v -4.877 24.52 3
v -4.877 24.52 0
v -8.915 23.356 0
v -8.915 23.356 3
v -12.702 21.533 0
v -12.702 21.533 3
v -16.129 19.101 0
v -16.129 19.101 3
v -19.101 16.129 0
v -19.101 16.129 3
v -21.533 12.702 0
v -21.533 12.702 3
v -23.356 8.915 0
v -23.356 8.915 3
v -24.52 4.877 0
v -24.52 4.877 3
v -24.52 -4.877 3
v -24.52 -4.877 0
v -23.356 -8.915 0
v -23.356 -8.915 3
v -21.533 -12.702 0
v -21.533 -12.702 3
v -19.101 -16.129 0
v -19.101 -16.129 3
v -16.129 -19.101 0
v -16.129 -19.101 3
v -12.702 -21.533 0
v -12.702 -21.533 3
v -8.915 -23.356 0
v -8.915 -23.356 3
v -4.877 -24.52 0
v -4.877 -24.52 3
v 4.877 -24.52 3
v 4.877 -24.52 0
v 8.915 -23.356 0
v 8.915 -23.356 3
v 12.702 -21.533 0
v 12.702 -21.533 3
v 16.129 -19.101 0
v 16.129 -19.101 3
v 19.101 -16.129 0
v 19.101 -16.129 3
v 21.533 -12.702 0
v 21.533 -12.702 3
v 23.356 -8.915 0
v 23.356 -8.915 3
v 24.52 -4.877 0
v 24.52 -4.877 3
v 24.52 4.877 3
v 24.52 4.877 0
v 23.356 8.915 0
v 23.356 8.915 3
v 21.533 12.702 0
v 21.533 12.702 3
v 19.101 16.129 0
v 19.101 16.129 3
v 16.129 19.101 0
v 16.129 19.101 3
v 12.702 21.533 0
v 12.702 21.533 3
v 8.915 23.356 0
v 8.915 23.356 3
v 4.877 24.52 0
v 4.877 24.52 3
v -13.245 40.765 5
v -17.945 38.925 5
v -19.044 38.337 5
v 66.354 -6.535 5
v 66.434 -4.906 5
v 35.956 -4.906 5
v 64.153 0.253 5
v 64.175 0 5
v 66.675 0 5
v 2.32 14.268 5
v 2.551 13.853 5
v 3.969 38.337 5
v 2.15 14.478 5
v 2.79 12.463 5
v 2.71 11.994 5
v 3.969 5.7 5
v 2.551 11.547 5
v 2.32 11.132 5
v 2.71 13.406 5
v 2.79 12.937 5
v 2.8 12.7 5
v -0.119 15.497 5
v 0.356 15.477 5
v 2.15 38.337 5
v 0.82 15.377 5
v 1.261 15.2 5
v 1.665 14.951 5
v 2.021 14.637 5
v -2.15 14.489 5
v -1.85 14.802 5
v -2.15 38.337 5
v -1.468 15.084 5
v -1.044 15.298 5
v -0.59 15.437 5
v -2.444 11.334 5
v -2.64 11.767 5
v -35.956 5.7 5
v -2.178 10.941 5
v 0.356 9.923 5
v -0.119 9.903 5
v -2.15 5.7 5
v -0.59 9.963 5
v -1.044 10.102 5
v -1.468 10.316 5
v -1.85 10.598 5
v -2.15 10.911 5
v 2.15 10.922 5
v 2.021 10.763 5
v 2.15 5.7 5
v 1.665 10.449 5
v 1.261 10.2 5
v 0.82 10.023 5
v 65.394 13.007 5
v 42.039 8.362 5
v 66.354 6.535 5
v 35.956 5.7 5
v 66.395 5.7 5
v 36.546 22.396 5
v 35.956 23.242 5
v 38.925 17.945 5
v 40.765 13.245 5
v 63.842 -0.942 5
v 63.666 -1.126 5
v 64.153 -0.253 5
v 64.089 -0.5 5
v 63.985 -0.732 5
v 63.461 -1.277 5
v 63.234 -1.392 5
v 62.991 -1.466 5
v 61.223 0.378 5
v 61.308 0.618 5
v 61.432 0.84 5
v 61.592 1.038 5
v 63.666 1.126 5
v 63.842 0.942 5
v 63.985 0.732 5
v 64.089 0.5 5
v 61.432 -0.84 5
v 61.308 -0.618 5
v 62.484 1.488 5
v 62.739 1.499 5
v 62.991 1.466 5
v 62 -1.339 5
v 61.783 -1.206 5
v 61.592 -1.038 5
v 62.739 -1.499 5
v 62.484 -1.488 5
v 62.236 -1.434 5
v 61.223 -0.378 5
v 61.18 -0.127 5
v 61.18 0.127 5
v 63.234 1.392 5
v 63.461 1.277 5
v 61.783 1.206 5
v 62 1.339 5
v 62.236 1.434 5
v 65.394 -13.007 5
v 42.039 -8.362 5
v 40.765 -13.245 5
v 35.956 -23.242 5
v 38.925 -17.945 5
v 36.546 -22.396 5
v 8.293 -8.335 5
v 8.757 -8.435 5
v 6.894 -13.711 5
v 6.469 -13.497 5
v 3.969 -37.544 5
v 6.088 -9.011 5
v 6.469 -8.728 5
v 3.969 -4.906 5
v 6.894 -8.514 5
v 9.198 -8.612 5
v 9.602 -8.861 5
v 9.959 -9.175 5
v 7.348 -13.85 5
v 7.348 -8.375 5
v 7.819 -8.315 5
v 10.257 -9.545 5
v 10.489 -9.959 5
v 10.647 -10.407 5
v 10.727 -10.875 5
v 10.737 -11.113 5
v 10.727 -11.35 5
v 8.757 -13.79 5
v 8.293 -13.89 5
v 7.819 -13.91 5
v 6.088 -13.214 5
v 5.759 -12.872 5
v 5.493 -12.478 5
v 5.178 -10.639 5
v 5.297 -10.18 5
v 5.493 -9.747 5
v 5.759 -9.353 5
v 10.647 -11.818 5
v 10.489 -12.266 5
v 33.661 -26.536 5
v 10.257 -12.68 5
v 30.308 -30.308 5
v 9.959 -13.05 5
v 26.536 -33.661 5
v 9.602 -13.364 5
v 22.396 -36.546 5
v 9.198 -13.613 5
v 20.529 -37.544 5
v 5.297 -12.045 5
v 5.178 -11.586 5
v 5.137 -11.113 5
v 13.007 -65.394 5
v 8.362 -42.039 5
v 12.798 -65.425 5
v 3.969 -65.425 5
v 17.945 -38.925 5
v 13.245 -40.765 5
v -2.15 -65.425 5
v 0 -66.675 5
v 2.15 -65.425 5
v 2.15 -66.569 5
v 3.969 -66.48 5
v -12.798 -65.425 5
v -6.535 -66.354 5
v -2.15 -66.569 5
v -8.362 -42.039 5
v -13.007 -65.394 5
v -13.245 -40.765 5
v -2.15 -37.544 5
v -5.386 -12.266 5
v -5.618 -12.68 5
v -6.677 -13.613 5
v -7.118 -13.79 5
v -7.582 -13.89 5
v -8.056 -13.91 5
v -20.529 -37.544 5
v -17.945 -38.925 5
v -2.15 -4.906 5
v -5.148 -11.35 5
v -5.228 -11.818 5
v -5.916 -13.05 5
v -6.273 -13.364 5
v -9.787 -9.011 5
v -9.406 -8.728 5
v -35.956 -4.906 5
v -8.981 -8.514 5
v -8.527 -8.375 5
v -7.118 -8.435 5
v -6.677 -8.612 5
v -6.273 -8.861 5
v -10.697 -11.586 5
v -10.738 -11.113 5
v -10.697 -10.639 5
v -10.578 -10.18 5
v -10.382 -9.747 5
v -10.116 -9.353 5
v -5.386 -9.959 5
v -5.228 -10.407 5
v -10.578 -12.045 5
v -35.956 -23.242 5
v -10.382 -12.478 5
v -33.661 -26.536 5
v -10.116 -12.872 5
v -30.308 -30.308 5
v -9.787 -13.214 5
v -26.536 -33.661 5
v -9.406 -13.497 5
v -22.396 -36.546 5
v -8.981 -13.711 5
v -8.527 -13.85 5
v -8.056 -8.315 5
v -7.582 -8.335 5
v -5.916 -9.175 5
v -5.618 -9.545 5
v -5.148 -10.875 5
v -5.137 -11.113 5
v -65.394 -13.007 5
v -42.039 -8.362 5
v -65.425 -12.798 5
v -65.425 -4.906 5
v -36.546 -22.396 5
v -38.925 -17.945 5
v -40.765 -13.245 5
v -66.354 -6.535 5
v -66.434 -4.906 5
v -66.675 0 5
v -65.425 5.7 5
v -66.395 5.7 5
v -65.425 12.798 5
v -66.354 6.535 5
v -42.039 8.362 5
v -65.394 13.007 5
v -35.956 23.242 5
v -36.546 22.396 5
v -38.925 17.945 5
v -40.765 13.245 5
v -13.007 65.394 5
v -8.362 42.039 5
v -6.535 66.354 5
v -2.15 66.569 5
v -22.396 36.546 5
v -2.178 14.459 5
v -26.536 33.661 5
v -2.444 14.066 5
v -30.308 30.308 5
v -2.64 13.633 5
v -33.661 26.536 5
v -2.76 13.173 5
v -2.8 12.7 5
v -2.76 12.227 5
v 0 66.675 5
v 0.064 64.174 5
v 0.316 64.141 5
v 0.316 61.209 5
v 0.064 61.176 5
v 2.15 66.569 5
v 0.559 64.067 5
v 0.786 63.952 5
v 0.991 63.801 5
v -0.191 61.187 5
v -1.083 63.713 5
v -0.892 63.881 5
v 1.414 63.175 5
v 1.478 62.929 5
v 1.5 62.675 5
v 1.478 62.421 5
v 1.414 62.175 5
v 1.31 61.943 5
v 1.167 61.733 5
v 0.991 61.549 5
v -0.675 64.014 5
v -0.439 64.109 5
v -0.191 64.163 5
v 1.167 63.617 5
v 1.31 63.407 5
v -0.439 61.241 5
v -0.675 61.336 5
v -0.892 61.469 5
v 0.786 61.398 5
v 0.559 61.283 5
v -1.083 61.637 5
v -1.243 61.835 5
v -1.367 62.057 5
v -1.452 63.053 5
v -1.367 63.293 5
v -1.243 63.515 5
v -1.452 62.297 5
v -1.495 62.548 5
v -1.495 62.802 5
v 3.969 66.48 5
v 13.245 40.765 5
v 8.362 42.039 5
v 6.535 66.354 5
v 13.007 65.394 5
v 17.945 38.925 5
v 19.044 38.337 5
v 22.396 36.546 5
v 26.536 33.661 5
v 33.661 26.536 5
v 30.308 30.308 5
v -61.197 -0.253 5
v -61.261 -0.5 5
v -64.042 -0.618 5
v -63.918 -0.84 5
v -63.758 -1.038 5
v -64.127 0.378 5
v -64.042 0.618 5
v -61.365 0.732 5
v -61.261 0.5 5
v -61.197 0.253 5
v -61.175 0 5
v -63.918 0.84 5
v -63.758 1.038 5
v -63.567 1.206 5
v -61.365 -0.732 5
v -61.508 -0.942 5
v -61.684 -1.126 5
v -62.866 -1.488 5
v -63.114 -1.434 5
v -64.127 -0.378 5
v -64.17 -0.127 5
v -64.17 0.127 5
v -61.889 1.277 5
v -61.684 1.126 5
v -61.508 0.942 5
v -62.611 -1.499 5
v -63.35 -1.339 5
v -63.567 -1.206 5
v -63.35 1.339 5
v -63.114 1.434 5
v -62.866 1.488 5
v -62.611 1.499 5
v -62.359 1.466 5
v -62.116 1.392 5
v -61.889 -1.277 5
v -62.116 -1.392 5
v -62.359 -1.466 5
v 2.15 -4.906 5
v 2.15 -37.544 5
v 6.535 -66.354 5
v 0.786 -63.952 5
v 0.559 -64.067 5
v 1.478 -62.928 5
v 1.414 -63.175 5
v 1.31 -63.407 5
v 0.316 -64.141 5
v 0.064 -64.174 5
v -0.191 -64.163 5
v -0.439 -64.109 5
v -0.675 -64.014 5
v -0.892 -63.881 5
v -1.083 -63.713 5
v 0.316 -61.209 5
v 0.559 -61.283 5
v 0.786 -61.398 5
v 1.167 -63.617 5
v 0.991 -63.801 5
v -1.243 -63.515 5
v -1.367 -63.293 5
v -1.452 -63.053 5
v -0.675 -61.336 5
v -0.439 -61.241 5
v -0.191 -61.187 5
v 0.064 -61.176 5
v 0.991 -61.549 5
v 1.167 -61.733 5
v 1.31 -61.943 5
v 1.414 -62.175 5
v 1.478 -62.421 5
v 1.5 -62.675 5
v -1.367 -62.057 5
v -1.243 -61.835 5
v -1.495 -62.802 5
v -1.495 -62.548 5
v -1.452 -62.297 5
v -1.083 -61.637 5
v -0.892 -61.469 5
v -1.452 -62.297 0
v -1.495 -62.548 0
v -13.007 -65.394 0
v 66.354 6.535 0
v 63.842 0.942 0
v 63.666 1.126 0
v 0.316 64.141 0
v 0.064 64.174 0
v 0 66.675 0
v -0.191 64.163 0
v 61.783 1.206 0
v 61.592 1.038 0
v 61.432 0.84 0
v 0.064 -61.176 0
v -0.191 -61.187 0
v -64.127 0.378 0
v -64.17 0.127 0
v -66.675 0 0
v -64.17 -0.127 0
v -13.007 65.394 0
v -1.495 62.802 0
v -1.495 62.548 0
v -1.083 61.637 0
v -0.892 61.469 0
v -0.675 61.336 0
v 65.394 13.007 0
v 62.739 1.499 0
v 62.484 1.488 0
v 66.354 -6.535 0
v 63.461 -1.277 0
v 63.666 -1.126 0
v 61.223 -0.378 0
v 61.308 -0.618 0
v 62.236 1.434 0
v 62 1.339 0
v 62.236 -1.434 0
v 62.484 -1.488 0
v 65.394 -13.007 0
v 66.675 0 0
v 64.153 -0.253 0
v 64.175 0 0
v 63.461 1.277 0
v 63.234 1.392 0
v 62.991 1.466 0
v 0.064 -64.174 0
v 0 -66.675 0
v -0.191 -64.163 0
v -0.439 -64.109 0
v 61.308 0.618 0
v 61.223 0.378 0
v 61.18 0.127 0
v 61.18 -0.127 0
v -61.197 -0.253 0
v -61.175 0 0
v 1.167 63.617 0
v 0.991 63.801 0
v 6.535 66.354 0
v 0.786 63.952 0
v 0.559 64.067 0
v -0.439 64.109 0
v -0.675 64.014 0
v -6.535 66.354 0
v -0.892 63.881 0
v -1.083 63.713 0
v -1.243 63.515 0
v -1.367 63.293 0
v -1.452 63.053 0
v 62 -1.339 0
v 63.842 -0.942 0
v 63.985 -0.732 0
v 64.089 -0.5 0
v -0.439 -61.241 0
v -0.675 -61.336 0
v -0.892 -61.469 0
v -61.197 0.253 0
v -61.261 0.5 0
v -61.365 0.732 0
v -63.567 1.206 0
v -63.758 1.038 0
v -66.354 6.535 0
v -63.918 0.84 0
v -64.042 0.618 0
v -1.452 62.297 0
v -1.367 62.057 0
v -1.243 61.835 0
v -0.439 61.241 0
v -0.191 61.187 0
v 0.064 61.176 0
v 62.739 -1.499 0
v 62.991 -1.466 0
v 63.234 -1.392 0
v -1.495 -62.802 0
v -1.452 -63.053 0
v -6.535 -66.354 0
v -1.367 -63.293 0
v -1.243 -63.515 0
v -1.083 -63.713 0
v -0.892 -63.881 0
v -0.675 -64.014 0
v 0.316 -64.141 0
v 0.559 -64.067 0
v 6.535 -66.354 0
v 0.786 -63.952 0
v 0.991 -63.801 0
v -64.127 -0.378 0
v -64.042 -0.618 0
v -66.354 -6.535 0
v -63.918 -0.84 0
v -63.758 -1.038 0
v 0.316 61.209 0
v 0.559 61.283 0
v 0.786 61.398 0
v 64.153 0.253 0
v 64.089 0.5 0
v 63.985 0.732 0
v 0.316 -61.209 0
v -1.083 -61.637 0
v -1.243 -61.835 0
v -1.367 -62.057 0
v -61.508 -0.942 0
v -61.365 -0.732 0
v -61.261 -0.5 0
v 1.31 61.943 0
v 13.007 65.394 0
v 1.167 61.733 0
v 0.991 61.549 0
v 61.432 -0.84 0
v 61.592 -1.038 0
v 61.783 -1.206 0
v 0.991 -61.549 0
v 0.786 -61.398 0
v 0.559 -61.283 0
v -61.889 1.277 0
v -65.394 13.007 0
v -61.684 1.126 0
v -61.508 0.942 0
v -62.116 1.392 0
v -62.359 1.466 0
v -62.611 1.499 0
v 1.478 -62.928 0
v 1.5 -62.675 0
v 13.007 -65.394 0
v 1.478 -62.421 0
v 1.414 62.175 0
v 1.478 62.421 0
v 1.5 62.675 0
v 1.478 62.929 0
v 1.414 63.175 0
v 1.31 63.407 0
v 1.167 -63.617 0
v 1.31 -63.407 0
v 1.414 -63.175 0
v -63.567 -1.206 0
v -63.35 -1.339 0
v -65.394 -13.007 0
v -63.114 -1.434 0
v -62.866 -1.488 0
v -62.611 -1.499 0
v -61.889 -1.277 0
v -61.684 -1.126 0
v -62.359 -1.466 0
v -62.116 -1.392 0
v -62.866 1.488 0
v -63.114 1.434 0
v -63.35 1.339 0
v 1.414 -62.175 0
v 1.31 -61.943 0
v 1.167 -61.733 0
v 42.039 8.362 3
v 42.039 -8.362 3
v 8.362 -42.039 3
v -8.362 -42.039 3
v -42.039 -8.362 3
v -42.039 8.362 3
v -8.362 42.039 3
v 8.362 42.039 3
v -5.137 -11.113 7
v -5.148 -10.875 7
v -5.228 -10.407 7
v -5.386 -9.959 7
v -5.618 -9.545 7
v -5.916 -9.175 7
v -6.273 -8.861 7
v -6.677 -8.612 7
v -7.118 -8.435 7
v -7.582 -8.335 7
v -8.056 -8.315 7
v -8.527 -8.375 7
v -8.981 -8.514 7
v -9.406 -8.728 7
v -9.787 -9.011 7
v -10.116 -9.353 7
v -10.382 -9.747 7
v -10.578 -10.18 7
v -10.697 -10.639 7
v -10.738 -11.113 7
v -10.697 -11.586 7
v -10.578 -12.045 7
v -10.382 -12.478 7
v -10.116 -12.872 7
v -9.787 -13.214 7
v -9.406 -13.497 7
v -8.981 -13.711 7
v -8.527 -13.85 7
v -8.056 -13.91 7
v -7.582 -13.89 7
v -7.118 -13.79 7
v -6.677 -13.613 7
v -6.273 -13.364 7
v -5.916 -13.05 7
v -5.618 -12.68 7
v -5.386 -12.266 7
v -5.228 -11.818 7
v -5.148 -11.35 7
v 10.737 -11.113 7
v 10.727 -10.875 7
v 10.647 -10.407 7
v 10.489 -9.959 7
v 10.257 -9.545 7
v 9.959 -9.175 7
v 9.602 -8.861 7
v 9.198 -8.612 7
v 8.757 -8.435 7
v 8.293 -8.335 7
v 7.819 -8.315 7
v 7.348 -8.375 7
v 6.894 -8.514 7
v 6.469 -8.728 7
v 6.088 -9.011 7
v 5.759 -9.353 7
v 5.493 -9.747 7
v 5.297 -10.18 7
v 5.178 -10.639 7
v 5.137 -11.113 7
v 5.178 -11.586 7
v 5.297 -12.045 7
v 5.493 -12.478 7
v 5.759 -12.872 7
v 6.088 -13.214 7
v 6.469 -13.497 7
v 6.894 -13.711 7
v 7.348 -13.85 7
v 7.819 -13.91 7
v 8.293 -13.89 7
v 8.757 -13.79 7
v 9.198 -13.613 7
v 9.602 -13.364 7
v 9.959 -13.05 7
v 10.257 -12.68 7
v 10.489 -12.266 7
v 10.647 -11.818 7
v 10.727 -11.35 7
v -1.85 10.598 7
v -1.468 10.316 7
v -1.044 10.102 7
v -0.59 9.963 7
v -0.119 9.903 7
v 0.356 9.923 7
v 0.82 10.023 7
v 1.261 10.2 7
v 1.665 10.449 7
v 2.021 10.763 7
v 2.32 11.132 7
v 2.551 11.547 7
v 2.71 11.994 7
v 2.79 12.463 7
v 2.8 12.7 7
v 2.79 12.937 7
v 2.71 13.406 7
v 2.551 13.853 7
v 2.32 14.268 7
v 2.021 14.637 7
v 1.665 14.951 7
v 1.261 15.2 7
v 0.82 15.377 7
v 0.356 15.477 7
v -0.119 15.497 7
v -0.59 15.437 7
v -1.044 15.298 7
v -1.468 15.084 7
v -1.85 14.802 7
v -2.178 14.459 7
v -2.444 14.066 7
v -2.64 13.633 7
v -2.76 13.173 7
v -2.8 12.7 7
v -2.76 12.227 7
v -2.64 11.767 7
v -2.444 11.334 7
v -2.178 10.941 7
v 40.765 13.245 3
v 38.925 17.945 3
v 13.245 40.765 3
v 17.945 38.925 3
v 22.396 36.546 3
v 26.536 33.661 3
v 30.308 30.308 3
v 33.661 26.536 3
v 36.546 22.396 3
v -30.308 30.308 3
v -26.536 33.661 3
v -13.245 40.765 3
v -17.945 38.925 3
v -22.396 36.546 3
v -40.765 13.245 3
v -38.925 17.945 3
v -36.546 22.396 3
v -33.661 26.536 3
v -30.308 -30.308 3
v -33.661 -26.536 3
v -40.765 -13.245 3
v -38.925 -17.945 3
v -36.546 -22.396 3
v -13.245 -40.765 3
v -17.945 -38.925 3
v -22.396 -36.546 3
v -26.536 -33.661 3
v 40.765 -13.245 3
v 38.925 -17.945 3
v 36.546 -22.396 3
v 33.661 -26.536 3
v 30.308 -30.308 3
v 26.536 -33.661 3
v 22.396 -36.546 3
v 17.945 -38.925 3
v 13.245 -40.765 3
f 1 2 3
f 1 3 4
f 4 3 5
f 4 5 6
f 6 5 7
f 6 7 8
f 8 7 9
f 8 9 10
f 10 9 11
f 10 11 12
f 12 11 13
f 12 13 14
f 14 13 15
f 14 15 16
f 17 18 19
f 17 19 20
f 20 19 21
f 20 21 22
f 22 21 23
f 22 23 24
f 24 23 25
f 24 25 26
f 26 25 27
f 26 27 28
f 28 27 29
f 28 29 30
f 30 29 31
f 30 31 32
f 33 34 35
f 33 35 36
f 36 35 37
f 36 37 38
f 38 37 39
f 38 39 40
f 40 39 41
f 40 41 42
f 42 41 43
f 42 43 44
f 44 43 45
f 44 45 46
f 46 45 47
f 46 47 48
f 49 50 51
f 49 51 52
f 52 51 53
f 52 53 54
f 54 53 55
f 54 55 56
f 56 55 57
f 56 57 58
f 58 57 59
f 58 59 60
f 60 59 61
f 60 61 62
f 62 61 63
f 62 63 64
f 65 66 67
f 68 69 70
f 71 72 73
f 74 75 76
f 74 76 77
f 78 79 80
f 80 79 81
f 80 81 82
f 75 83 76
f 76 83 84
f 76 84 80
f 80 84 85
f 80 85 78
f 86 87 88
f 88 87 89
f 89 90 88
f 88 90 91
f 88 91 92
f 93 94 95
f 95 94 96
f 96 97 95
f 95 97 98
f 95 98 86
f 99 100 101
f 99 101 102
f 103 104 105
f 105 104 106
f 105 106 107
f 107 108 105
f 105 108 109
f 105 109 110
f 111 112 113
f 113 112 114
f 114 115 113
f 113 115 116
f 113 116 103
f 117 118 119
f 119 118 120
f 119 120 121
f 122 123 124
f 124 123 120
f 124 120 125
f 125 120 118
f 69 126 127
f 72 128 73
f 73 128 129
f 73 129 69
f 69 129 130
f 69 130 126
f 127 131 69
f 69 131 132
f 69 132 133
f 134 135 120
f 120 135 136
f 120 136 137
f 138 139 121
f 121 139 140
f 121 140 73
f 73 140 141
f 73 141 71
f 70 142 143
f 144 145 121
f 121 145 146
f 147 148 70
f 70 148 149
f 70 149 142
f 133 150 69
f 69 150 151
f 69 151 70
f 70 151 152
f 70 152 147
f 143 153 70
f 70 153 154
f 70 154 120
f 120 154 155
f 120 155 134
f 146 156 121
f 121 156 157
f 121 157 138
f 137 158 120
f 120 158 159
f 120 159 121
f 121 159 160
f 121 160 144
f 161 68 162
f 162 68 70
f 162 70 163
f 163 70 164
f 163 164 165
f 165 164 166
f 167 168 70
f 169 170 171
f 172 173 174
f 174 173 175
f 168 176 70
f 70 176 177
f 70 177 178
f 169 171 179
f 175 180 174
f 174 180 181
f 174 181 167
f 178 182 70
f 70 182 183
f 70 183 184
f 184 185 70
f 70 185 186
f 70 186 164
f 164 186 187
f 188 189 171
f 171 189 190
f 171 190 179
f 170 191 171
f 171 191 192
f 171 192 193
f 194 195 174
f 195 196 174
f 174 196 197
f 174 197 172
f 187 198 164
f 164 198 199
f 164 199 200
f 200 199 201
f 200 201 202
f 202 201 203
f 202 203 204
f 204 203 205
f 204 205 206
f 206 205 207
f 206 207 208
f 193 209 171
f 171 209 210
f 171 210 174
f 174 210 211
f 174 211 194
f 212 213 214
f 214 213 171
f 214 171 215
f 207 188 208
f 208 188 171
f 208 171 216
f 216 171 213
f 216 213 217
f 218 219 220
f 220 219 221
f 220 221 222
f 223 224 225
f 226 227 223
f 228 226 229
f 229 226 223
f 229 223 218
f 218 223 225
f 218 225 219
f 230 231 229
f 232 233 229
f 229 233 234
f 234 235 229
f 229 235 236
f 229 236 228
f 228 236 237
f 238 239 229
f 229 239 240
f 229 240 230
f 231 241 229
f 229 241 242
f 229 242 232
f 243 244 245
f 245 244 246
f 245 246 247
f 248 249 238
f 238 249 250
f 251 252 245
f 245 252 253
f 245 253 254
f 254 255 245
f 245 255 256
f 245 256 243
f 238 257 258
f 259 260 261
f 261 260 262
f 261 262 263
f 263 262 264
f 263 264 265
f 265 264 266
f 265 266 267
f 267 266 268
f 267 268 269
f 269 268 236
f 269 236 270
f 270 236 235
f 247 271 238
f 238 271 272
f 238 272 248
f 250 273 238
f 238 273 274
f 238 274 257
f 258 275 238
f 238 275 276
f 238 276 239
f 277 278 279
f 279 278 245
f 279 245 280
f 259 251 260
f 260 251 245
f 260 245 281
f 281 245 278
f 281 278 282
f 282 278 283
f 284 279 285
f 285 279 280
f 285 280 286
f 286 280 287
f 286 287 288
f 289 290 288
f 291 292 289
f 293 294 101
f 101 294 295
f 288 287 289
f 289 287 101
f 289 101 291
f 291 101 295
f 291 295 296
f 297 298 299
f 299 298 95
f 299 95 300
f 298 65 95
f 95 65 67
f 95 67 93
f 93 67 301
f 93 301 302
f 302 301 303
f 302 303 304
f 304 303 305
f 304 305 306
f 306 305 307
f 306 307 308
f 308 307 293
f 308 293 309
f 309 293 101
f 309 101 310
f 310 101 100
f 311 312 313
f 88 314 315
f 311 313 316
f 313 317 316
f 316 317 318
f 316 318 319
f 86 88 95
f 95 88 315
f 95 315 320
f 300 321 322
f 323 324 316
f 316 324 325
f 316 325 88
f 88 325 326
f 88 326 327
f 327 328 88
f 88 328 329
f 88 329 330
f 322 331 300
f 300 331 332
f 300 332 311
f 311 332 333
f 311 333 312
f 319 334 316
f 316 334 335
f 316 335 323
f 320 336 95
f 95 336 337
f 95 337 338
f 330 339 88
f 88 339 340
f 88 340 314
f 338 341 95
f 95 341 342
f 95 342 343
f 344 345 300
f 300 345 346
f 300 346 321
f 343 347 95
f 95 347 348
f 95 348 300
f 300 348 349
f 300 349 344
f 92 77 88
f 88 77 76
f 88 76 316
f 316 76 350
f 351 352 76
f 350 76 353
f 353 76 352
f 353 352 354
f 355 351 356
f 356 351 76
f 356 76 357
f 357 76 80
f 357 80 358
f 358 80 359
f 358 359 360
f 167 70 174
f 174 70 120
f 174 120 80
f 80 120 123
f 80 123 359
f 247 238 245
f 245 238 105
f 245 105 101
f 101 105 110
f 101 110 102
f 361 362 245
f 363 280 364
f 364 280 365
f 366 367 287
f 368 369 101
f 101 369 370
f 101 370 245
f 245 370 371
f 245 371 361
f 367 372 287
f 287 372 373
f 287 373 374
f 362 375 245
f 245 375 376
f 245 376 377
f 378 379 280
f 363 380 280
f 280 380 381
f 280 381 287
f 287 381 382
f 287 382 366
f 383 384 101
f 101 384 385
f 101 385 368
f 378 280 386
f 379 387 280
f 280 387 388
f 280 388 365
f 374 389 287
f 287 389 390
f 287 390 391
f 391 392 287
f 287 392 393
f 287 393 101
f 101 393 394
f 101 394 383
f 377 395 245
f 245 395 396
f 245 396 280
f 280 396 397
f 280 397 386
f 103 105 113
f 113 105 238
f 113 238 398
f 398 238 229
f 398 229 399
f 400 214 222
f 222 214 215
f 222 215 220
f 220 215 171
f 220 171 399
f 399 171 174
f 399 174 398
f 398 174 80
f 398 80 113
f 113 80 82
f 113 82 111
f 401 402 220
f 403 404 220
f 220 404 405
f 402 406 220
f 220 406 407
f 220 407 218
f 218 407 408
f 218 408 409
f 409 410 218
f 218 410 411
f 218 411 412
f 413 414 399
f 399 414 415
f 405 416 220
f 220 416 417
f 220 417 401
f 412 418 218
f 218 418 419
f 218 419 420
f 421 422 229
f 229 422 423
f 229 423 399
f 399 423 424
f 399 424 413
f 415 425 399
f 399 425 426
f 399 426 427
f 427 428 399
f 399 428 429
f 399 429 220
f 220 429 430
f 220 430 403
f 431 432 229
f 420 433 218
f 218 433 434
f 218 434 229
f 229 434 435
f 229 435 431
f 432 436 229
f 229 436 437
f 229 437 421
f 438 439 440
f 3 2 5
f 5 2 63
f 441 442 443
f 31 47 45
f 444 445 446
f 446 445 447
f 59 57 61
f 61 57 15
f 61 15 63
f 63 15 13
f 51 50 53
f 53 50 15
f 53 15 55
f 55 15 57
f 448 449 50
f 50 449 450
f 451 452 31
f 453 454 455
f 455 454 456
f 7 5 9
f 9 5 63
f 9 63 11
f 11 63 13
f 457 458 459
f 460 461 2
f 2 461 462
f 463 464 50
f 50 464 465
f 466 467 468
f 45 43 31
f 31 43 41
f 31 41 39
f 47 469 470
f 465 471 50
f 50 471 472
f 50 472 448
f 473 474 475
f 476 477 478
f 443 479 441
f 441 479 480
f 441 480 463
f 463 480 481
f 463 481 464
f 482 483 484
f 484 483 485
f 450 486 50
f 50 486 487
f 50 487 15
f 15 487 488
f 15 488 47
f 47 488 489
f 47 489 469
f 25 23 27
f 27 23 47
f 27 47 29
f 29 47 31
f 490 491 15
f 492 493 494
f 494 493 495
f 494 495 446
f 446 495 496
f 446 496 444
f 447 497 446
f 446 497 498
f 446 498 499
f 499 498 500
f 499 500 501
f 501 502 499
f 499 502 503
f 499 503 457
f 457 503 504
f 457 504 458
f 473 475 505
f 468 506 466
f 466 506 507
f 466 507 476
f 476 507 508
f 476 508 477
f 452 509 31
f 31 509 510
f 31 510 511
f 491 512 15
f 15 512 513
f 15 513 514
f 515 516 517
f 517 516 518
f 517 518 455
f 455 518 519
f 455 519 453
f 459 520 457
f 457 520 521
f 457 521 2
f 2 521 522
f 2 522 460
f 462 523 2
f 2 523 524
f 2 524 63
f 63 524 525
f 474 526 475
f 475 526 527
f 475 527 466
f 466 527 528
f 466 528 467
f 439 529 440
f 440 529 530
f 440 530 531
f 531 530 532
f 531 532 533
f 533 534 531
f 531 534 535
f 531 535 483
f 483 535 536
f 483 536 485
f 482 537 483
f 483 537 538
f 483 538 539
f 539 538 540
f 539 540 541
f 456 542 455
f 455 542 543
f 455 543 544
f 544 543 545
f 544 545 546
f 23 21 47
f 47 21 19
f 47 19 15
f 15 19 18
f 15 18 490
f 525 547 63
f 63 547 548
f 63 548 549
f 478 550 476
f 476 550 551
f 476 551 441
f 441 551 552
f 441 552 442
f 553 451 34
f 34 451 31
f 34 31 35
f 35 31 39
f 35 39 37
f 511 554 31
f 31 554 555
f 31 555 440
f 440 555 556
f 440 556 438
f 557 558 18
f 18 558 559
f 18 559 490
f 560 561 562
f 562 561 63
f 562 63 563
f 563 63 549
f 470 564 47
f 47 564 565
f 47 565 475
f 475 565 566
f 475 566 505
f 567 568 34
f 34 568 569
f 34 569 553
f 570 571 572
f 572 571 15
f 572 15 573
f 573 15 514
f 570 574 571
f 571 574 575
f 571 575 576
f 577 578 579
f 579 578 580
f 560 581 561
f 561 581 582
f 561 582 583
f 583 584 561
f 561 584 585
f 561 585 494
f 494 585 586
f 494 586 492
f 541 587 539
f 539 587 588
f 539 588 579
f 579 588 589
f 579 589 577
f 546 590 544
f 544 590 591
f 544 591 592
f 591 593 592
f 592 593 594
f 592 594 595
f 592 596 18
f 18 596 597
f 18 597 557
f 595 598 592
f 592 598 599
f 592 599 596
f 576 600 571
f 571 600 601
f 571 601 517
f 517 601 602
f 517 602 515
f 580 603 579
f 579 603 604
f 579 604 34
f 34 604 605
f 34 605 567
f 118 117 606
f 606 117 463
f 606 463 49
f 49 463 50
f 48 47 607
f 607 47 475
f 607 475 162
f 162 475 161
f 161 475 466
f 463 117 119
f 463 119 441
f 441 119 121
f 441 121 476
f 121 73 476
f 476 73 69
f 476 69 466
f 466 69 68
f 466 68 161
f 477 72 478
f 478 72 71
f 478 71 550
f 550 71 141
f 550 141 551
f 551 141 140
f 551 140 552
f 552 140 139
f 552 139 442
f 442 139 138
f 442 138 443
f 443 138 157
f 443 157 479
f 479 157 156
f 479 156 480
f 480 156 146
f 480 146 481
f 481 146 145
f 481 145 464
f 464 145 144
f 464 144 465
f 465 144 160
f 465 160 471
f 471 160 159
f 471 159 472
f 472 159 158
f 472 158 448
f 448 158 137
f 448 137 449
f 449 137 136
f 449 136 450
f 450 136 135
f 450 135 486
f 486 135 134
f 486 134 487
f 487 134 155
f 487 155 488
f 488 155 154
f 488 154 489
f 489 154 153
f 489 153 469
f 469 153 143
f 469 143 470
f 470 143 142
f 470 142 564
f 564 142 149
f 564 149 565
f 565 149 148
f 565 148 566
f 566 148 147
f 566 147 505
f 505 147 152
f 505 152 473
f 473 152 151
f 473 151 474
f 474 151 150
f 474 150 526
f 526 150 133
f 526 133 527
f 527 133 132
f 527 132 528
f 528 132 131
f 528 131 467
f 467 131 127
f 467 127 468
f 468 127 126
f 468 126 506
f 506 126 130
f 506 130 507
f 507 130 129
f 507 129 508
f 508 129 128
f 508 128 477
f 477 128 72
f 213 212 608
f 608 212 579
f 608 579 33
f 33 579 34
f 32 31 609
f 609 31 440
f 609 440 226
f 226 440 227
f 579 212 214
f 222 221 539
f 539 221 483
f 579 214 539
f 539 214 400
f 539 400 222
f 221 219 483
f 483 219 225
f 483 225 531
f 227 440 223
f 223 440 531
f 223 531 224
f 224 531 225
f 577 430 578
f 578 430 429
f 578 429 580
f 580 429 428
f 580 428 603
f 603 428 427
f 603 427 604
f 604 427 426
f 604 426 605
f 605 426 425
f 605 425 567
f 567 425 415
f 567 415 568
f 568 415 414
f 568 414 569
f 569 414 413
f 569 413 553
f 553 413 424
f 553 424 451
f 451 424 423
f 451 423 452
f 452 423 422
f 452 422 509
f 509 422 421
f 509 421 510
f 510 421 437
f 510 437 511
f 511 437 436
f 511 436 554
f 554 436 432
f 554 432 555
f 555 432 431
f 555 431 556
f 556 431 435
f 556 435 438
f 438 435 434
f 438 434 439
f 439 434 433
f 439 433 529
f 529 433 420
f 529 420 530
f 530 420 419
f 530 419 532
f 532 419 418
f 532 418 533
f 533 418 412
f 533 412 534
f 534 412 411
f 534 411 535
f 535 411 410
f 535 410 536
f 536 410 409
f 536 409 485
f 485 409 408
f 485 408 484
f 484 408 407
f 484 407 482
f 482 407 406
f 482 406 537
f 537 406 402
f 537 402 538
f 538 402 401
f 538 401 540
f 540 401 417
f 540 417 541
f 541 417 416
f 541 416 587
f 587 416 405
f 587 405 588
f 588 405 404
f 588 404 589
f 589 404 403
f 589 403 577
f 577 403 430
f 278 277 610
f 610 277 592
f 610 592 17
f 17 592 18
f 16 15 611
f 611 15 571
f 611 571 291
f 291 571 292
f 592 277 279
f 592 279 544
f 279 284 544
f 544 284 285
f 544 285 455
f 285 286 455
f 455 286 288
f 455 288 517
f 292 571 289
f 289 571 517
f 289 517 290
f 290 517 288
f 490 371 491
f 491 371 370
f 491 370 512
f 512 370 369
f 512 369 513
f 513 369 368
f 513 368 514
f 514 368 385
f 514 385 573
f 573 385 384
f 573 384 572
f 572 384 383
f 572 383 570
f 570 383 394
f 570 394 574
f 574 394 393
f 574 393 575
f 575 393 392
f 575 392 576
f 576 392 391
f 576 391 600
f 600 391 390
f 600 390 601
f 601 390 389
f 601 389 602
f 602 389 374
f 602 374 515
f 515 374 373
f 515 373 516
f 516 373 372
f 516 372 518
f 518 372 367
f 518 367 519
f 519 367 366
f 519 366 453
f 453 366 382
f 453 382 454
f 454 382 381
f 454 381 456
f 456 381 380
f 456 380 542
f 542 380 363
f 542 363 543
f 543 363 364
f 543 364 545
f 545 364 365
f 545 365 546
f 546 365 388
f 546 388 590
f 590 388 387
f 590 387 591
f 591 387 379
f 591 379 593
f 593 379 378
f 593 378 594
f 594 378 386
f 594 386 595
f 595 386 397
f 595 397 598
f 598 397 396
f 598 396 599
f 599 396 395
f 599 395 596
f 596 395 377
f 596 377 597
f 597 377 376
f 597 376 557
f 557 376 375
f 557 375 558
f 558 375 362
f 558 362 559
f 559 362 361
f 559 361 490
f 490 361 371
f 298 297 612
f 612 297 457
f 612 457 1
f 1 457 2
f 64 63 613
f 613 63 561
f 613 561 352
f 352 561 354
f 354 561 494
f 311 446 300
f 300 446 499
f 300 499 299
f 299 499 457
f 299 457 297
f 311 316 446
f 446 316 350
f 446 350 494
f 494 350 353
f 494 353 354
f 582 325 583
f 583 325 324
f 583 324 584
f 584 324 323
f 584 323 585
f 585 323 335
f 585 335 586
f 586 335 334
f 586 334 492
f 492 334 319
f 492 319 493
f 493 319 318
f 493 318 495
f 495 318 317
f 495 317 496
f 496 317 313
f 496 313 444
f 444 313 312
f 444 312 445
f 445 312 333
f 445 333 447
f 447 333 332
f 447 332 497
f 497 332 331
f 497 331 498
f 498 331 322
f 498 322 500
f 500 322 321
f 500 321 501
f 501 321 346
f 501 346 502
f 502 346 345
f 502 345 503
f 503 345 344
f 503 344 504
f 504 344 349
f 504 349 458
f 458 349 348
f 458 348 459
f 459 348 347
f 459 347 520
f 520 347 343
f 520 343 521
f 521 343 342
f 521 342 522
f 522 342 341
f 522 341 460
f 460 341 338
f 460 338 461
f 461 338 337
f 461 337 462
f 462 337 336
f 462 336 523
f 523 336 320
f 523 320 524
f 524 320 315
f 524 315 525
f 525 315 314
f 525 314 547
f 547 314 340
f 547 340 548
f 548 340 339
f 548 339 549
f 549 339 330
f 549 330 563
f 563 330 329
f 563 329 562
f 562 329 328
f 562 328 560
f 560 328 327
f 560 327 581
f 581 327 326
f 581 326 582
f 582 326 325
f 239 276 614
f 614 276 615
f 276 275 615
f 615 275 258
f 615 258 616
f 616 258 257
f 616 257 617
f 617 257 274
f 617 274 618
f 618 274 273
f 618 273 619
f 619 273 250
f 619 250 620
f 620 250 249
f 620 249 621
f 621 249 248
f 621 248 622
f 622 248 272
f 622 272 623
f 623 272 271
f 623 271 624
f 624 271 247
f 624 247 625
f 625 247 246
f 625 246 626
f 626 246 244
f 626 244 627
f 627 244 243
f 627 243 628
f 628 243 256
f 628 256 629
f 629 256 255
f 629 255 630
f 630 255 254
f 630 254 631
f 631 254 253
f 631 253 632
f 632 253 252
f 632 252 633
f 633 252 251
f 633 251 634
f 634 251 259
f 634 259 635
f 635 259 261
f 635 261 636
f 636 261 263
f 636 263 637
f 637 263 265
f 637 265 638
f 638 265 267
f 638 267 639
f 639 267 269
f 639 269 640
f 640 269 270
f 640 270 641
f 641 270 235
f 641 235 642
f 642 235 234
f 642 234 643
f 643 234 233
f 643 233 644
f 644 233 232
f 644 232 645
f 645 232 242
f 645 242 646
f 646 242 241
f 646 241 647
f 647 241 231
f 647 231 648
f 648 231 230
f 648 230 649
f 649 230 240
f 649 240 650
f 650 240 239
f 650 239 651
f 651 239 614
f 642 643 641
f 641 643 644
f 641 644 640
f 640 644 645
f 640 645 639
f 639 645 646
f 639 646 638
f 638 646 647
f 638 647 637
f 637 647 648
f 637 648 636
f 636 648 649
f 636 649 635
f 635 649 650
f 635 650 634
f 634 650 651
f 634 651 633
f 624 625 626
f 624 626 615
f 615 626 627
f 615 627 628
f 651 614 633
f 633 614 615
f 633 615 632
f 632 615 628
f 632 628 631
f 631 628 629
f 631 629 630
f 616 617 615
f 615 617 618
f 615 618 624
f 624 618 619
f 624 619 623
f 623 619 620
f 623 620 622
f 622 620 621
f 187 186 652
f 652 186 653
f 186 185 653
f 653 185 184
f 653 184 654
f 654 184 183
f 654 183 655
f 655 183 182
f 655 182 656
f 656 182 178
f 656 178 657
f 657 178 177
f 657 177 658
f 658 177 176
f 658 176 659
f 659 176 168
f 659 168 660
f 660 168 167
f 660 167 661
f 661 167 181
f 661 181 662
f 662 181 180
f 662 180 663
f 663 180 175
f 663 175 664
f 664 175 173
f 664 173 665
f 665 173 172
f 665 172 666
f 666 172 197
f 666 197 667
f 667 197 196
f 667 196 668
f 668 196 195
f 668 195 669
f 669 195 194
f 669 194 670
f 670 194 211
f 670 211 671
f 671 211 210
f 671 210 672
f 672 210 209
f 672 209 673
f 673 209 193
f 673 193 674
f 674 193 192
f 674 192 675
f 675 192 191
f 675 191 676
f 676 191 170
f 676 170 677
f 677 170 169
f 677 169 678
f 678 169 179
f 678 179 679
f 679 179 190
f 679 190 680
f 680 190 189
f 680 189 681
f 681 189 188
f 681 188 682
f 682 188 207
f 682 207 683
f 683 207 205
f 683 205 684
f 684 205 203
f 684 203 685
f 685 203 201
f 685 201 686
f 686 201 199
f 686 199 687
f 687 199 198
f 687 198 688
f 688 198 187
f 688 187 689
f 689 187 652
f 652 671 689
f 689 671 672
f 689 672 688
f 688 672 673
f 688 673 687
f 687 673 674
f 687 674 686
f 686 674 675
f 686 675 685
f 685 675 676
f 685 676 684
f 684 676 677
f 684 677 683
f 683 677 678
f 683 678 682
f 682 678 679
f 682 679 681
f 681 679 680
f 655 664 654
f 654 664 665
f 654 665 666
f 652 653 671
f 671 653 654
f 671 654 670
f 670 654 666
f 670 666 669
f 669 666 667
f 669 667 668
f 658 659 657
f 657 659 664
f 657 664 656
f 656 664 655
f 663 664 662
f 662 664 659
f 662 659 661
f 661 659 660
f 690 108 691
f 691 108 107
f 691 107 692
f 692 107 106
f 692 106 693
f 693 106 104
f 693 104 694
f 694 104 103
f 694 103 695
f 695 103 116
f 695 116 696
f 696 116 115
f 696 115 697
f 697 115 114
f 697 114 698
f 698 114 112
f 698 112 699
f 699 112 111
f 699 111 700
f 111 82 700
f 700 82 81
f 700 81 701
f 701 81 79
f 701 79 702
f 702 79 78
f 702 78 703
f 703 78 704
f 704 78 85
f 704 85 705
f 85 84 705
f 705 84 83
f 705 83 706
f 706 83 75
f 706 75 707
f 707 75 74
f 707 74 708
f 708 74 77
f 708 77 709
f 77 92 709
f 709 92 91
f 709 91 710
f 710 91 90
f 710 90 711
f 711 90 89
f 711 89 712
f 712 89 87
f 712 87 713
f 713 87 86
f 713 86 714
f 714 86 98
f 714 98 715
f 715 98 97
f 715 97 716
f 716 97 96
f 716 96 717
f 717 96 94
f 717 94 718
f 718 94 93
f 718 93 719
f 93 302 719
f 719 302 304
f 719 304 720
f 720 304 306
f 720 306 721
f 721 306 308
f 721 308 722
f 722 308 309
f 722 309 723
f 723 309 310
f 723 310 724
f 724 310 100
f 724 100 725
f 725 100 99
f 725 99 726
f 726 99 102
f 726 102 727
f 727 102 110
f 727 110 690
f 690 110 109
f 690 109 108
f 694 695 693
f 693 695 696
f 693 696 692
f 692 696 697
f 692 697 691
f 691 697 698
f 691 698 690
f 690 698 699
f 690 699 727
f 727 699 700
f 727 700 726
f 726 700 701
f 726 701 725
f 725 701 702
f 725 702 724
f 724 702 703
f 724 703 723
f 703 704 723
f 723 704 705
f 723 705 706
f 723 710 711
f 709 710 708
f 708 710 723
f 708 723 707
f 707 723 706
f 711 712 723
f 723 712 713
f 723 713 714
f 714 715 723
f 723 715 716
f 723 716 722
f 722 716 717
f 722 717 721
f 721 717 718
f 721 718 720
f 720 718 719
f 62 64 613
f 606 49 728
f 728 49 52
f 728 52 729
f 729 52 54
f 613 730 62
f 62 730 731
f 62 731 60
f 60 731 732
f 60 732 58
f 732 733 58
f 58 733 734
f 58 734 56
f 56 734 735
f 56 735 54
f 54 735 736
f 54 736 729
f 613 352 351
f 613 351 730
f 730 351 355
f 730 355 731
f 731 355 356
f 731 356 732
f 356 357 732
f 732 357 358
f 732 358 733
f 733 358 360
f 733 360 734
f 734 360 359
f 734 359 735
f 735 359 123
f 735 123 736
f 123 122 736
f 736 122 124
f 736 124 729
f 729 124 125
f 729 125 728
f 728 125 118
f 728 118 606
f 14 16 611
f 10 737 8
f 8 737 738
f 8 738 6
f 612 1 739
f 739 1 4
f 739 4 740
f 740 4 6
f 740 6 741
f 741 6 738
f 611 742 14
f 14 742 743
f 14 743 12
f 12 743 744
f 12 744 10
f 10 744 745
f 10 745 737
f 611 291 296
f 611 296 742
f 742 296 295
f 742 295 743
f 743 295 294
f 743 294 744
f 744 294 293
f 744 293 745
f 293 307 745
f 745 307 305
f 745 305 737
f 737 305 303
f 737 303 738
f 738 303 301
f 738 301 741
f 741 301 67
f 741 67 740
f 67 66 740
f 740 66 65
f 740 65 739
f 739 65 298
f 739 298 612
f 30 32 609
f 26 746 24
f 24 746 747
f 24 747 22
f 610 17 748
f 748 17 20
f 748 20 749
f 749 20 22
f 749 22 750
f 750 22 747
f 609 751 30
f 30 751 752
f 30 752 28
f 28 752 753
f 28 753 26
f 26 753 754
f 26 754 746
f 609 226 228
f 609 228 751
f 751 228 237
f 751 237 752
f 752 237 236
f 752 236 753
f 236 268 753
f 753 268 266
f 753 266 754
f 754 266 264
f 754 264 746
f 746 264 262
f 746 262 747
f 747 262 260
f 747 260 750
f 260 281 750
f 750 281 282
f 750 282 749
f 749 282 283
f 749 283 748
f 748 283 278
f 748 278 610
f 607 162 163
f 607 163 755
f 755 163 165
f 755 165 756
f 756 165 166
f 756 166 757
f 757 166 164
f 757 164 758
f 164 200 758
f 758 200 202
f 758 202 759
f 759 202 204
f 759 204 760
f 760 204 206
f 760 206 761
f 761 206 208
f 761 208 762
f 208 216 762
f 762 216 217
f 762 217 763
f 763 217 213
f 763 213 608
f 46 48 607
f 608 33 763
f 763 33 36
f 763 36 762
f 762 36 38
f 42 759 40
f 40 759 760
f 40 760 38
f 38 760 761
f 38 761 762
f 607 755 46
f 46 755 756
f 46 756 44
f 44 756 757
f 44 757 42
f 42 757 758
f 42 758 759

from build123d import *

# Parameters (mm, degrees)
SKETCH1_R      = 25
EXTRUDE1_DEPTH = 5
SKETCH4_R      = 1.5
EXTRUDE2_DEPTH = 5
SKETCH6_R      = 2.8
EXTRUDE4_DEPTH = 2
SKETCH7_R      = 42.8625
SKETCH7_R_2    = 23.8125
EXTRUDE5_DEPTH = 2


with BuildPart() as part:
    # Sketch1 → Extrude1 (new body)
    with BuildSketch(Plane.XY):
        Circle(SKETCH1_R)
    extrude(amount=EXTRUDE1_DEPTH)

    # Sketch4 → Extrude2 (add)
    with BuildSketch(Plane.XY.offset(5)):
        with BuildLine():
            Line((-13.007376983, 65.393912324), (-4.682070455, 23.538866078))
            ThreePointArc((-4.682070455, 23.538866078), (0, 24), (4.682070455, 23.538866078))
            Line((4.682070455, 23.538866078), (13.007376983, 65.393912324))
            ThreePointArc((13.007376983, 65.393912324), (0, 66.675), (-13.007376983, 65.393912324))
        make_face()
        with Locations((0, 62.675)):
            Circle(SKETCH4_R, mode=Mode.SUBTRACT)
        with BuildLine():
            Line((65.393912324, 13.007376983), (23.538866078, 4.682070455))
            ThreePointArc((23.538866078, 4.682070455), (24, 0), (23.538866078, -4.682070455))
            Line((23.538866078, -4.682070455), (65.393912324, -13.007376983))
            ThreePointArc((65.393912324, -13.007376983), (66.675, 0), (65.393912324, 13.007376983))
        make_face()
        with Locations((62.675, 0)):
            Circle(SKETCH4_R, mode=Mode.SUBTRACT)
        with BuildLine():
            Line((4.682070455, -23.538866078), (13.007376983, -65.393912324))
            ThreePointArc((13.007376983, -65.393912324), (0, -66.675), (-13.007376983, -65.393912324))
            Line((-13.007376983, -65.393912324), (-4.682070455, -23.538866078))
            ThreePointArc((-4.682070455, -23.538866078), (0, -24), (4.682070455, -23.538866078))
        make_face()
        with Locations((0, -62.675)):
            Circle(SKETCH4_R, mode=Mode.SUBTRACT)
        with BuildLine():
            Line((-23.538866078, -4.682070455), (-65.393912324, -13.007376983))
            ThreePointArc((-65.393912324, -13.007376983), (-66.675, 0), (-65.393912324, 13.007376983))
            Line((-65.393912324, 13.007376983), (-23.538866078, 4.682070455))
            ThreePointArc((-23.538866078, 4.682070455), (-24, 0), (-23.538866078, -4.682070455))
        make_face()
        with Locations((-62.675, 0)):
            Circle(SKETCH4_R, mode=Mode.SUBTRACT)
    extrude(amount=-EXTRUDE2_DEPTH)

    # Sketch6 → Extrude4 (add)
    with BuildSketch(Plane.XY.offset(5)):
        with Locations((-7.9375, -11.1125)):
            Circle(SKETCH6_R)
        with Locations((7.9375, -11.1125)):
            Circle(SKETCH6_R)
        with Locations((0, 12.7)):
            Circle(SKETCH6_R)
    extrude(amount=EXTRUDE4_DEPTH)

    # Sketch7 → Extrude5 (add)
    with BuildSketch(Plane.XY.offset(5)):
        Circle(SKETCH7_R)
        Circle(SKETCH7_R_2, mode=Mode.SUBTRACT)
    extrude(amount=-EXTRUDE5_DEPTH)


solid = part.part
